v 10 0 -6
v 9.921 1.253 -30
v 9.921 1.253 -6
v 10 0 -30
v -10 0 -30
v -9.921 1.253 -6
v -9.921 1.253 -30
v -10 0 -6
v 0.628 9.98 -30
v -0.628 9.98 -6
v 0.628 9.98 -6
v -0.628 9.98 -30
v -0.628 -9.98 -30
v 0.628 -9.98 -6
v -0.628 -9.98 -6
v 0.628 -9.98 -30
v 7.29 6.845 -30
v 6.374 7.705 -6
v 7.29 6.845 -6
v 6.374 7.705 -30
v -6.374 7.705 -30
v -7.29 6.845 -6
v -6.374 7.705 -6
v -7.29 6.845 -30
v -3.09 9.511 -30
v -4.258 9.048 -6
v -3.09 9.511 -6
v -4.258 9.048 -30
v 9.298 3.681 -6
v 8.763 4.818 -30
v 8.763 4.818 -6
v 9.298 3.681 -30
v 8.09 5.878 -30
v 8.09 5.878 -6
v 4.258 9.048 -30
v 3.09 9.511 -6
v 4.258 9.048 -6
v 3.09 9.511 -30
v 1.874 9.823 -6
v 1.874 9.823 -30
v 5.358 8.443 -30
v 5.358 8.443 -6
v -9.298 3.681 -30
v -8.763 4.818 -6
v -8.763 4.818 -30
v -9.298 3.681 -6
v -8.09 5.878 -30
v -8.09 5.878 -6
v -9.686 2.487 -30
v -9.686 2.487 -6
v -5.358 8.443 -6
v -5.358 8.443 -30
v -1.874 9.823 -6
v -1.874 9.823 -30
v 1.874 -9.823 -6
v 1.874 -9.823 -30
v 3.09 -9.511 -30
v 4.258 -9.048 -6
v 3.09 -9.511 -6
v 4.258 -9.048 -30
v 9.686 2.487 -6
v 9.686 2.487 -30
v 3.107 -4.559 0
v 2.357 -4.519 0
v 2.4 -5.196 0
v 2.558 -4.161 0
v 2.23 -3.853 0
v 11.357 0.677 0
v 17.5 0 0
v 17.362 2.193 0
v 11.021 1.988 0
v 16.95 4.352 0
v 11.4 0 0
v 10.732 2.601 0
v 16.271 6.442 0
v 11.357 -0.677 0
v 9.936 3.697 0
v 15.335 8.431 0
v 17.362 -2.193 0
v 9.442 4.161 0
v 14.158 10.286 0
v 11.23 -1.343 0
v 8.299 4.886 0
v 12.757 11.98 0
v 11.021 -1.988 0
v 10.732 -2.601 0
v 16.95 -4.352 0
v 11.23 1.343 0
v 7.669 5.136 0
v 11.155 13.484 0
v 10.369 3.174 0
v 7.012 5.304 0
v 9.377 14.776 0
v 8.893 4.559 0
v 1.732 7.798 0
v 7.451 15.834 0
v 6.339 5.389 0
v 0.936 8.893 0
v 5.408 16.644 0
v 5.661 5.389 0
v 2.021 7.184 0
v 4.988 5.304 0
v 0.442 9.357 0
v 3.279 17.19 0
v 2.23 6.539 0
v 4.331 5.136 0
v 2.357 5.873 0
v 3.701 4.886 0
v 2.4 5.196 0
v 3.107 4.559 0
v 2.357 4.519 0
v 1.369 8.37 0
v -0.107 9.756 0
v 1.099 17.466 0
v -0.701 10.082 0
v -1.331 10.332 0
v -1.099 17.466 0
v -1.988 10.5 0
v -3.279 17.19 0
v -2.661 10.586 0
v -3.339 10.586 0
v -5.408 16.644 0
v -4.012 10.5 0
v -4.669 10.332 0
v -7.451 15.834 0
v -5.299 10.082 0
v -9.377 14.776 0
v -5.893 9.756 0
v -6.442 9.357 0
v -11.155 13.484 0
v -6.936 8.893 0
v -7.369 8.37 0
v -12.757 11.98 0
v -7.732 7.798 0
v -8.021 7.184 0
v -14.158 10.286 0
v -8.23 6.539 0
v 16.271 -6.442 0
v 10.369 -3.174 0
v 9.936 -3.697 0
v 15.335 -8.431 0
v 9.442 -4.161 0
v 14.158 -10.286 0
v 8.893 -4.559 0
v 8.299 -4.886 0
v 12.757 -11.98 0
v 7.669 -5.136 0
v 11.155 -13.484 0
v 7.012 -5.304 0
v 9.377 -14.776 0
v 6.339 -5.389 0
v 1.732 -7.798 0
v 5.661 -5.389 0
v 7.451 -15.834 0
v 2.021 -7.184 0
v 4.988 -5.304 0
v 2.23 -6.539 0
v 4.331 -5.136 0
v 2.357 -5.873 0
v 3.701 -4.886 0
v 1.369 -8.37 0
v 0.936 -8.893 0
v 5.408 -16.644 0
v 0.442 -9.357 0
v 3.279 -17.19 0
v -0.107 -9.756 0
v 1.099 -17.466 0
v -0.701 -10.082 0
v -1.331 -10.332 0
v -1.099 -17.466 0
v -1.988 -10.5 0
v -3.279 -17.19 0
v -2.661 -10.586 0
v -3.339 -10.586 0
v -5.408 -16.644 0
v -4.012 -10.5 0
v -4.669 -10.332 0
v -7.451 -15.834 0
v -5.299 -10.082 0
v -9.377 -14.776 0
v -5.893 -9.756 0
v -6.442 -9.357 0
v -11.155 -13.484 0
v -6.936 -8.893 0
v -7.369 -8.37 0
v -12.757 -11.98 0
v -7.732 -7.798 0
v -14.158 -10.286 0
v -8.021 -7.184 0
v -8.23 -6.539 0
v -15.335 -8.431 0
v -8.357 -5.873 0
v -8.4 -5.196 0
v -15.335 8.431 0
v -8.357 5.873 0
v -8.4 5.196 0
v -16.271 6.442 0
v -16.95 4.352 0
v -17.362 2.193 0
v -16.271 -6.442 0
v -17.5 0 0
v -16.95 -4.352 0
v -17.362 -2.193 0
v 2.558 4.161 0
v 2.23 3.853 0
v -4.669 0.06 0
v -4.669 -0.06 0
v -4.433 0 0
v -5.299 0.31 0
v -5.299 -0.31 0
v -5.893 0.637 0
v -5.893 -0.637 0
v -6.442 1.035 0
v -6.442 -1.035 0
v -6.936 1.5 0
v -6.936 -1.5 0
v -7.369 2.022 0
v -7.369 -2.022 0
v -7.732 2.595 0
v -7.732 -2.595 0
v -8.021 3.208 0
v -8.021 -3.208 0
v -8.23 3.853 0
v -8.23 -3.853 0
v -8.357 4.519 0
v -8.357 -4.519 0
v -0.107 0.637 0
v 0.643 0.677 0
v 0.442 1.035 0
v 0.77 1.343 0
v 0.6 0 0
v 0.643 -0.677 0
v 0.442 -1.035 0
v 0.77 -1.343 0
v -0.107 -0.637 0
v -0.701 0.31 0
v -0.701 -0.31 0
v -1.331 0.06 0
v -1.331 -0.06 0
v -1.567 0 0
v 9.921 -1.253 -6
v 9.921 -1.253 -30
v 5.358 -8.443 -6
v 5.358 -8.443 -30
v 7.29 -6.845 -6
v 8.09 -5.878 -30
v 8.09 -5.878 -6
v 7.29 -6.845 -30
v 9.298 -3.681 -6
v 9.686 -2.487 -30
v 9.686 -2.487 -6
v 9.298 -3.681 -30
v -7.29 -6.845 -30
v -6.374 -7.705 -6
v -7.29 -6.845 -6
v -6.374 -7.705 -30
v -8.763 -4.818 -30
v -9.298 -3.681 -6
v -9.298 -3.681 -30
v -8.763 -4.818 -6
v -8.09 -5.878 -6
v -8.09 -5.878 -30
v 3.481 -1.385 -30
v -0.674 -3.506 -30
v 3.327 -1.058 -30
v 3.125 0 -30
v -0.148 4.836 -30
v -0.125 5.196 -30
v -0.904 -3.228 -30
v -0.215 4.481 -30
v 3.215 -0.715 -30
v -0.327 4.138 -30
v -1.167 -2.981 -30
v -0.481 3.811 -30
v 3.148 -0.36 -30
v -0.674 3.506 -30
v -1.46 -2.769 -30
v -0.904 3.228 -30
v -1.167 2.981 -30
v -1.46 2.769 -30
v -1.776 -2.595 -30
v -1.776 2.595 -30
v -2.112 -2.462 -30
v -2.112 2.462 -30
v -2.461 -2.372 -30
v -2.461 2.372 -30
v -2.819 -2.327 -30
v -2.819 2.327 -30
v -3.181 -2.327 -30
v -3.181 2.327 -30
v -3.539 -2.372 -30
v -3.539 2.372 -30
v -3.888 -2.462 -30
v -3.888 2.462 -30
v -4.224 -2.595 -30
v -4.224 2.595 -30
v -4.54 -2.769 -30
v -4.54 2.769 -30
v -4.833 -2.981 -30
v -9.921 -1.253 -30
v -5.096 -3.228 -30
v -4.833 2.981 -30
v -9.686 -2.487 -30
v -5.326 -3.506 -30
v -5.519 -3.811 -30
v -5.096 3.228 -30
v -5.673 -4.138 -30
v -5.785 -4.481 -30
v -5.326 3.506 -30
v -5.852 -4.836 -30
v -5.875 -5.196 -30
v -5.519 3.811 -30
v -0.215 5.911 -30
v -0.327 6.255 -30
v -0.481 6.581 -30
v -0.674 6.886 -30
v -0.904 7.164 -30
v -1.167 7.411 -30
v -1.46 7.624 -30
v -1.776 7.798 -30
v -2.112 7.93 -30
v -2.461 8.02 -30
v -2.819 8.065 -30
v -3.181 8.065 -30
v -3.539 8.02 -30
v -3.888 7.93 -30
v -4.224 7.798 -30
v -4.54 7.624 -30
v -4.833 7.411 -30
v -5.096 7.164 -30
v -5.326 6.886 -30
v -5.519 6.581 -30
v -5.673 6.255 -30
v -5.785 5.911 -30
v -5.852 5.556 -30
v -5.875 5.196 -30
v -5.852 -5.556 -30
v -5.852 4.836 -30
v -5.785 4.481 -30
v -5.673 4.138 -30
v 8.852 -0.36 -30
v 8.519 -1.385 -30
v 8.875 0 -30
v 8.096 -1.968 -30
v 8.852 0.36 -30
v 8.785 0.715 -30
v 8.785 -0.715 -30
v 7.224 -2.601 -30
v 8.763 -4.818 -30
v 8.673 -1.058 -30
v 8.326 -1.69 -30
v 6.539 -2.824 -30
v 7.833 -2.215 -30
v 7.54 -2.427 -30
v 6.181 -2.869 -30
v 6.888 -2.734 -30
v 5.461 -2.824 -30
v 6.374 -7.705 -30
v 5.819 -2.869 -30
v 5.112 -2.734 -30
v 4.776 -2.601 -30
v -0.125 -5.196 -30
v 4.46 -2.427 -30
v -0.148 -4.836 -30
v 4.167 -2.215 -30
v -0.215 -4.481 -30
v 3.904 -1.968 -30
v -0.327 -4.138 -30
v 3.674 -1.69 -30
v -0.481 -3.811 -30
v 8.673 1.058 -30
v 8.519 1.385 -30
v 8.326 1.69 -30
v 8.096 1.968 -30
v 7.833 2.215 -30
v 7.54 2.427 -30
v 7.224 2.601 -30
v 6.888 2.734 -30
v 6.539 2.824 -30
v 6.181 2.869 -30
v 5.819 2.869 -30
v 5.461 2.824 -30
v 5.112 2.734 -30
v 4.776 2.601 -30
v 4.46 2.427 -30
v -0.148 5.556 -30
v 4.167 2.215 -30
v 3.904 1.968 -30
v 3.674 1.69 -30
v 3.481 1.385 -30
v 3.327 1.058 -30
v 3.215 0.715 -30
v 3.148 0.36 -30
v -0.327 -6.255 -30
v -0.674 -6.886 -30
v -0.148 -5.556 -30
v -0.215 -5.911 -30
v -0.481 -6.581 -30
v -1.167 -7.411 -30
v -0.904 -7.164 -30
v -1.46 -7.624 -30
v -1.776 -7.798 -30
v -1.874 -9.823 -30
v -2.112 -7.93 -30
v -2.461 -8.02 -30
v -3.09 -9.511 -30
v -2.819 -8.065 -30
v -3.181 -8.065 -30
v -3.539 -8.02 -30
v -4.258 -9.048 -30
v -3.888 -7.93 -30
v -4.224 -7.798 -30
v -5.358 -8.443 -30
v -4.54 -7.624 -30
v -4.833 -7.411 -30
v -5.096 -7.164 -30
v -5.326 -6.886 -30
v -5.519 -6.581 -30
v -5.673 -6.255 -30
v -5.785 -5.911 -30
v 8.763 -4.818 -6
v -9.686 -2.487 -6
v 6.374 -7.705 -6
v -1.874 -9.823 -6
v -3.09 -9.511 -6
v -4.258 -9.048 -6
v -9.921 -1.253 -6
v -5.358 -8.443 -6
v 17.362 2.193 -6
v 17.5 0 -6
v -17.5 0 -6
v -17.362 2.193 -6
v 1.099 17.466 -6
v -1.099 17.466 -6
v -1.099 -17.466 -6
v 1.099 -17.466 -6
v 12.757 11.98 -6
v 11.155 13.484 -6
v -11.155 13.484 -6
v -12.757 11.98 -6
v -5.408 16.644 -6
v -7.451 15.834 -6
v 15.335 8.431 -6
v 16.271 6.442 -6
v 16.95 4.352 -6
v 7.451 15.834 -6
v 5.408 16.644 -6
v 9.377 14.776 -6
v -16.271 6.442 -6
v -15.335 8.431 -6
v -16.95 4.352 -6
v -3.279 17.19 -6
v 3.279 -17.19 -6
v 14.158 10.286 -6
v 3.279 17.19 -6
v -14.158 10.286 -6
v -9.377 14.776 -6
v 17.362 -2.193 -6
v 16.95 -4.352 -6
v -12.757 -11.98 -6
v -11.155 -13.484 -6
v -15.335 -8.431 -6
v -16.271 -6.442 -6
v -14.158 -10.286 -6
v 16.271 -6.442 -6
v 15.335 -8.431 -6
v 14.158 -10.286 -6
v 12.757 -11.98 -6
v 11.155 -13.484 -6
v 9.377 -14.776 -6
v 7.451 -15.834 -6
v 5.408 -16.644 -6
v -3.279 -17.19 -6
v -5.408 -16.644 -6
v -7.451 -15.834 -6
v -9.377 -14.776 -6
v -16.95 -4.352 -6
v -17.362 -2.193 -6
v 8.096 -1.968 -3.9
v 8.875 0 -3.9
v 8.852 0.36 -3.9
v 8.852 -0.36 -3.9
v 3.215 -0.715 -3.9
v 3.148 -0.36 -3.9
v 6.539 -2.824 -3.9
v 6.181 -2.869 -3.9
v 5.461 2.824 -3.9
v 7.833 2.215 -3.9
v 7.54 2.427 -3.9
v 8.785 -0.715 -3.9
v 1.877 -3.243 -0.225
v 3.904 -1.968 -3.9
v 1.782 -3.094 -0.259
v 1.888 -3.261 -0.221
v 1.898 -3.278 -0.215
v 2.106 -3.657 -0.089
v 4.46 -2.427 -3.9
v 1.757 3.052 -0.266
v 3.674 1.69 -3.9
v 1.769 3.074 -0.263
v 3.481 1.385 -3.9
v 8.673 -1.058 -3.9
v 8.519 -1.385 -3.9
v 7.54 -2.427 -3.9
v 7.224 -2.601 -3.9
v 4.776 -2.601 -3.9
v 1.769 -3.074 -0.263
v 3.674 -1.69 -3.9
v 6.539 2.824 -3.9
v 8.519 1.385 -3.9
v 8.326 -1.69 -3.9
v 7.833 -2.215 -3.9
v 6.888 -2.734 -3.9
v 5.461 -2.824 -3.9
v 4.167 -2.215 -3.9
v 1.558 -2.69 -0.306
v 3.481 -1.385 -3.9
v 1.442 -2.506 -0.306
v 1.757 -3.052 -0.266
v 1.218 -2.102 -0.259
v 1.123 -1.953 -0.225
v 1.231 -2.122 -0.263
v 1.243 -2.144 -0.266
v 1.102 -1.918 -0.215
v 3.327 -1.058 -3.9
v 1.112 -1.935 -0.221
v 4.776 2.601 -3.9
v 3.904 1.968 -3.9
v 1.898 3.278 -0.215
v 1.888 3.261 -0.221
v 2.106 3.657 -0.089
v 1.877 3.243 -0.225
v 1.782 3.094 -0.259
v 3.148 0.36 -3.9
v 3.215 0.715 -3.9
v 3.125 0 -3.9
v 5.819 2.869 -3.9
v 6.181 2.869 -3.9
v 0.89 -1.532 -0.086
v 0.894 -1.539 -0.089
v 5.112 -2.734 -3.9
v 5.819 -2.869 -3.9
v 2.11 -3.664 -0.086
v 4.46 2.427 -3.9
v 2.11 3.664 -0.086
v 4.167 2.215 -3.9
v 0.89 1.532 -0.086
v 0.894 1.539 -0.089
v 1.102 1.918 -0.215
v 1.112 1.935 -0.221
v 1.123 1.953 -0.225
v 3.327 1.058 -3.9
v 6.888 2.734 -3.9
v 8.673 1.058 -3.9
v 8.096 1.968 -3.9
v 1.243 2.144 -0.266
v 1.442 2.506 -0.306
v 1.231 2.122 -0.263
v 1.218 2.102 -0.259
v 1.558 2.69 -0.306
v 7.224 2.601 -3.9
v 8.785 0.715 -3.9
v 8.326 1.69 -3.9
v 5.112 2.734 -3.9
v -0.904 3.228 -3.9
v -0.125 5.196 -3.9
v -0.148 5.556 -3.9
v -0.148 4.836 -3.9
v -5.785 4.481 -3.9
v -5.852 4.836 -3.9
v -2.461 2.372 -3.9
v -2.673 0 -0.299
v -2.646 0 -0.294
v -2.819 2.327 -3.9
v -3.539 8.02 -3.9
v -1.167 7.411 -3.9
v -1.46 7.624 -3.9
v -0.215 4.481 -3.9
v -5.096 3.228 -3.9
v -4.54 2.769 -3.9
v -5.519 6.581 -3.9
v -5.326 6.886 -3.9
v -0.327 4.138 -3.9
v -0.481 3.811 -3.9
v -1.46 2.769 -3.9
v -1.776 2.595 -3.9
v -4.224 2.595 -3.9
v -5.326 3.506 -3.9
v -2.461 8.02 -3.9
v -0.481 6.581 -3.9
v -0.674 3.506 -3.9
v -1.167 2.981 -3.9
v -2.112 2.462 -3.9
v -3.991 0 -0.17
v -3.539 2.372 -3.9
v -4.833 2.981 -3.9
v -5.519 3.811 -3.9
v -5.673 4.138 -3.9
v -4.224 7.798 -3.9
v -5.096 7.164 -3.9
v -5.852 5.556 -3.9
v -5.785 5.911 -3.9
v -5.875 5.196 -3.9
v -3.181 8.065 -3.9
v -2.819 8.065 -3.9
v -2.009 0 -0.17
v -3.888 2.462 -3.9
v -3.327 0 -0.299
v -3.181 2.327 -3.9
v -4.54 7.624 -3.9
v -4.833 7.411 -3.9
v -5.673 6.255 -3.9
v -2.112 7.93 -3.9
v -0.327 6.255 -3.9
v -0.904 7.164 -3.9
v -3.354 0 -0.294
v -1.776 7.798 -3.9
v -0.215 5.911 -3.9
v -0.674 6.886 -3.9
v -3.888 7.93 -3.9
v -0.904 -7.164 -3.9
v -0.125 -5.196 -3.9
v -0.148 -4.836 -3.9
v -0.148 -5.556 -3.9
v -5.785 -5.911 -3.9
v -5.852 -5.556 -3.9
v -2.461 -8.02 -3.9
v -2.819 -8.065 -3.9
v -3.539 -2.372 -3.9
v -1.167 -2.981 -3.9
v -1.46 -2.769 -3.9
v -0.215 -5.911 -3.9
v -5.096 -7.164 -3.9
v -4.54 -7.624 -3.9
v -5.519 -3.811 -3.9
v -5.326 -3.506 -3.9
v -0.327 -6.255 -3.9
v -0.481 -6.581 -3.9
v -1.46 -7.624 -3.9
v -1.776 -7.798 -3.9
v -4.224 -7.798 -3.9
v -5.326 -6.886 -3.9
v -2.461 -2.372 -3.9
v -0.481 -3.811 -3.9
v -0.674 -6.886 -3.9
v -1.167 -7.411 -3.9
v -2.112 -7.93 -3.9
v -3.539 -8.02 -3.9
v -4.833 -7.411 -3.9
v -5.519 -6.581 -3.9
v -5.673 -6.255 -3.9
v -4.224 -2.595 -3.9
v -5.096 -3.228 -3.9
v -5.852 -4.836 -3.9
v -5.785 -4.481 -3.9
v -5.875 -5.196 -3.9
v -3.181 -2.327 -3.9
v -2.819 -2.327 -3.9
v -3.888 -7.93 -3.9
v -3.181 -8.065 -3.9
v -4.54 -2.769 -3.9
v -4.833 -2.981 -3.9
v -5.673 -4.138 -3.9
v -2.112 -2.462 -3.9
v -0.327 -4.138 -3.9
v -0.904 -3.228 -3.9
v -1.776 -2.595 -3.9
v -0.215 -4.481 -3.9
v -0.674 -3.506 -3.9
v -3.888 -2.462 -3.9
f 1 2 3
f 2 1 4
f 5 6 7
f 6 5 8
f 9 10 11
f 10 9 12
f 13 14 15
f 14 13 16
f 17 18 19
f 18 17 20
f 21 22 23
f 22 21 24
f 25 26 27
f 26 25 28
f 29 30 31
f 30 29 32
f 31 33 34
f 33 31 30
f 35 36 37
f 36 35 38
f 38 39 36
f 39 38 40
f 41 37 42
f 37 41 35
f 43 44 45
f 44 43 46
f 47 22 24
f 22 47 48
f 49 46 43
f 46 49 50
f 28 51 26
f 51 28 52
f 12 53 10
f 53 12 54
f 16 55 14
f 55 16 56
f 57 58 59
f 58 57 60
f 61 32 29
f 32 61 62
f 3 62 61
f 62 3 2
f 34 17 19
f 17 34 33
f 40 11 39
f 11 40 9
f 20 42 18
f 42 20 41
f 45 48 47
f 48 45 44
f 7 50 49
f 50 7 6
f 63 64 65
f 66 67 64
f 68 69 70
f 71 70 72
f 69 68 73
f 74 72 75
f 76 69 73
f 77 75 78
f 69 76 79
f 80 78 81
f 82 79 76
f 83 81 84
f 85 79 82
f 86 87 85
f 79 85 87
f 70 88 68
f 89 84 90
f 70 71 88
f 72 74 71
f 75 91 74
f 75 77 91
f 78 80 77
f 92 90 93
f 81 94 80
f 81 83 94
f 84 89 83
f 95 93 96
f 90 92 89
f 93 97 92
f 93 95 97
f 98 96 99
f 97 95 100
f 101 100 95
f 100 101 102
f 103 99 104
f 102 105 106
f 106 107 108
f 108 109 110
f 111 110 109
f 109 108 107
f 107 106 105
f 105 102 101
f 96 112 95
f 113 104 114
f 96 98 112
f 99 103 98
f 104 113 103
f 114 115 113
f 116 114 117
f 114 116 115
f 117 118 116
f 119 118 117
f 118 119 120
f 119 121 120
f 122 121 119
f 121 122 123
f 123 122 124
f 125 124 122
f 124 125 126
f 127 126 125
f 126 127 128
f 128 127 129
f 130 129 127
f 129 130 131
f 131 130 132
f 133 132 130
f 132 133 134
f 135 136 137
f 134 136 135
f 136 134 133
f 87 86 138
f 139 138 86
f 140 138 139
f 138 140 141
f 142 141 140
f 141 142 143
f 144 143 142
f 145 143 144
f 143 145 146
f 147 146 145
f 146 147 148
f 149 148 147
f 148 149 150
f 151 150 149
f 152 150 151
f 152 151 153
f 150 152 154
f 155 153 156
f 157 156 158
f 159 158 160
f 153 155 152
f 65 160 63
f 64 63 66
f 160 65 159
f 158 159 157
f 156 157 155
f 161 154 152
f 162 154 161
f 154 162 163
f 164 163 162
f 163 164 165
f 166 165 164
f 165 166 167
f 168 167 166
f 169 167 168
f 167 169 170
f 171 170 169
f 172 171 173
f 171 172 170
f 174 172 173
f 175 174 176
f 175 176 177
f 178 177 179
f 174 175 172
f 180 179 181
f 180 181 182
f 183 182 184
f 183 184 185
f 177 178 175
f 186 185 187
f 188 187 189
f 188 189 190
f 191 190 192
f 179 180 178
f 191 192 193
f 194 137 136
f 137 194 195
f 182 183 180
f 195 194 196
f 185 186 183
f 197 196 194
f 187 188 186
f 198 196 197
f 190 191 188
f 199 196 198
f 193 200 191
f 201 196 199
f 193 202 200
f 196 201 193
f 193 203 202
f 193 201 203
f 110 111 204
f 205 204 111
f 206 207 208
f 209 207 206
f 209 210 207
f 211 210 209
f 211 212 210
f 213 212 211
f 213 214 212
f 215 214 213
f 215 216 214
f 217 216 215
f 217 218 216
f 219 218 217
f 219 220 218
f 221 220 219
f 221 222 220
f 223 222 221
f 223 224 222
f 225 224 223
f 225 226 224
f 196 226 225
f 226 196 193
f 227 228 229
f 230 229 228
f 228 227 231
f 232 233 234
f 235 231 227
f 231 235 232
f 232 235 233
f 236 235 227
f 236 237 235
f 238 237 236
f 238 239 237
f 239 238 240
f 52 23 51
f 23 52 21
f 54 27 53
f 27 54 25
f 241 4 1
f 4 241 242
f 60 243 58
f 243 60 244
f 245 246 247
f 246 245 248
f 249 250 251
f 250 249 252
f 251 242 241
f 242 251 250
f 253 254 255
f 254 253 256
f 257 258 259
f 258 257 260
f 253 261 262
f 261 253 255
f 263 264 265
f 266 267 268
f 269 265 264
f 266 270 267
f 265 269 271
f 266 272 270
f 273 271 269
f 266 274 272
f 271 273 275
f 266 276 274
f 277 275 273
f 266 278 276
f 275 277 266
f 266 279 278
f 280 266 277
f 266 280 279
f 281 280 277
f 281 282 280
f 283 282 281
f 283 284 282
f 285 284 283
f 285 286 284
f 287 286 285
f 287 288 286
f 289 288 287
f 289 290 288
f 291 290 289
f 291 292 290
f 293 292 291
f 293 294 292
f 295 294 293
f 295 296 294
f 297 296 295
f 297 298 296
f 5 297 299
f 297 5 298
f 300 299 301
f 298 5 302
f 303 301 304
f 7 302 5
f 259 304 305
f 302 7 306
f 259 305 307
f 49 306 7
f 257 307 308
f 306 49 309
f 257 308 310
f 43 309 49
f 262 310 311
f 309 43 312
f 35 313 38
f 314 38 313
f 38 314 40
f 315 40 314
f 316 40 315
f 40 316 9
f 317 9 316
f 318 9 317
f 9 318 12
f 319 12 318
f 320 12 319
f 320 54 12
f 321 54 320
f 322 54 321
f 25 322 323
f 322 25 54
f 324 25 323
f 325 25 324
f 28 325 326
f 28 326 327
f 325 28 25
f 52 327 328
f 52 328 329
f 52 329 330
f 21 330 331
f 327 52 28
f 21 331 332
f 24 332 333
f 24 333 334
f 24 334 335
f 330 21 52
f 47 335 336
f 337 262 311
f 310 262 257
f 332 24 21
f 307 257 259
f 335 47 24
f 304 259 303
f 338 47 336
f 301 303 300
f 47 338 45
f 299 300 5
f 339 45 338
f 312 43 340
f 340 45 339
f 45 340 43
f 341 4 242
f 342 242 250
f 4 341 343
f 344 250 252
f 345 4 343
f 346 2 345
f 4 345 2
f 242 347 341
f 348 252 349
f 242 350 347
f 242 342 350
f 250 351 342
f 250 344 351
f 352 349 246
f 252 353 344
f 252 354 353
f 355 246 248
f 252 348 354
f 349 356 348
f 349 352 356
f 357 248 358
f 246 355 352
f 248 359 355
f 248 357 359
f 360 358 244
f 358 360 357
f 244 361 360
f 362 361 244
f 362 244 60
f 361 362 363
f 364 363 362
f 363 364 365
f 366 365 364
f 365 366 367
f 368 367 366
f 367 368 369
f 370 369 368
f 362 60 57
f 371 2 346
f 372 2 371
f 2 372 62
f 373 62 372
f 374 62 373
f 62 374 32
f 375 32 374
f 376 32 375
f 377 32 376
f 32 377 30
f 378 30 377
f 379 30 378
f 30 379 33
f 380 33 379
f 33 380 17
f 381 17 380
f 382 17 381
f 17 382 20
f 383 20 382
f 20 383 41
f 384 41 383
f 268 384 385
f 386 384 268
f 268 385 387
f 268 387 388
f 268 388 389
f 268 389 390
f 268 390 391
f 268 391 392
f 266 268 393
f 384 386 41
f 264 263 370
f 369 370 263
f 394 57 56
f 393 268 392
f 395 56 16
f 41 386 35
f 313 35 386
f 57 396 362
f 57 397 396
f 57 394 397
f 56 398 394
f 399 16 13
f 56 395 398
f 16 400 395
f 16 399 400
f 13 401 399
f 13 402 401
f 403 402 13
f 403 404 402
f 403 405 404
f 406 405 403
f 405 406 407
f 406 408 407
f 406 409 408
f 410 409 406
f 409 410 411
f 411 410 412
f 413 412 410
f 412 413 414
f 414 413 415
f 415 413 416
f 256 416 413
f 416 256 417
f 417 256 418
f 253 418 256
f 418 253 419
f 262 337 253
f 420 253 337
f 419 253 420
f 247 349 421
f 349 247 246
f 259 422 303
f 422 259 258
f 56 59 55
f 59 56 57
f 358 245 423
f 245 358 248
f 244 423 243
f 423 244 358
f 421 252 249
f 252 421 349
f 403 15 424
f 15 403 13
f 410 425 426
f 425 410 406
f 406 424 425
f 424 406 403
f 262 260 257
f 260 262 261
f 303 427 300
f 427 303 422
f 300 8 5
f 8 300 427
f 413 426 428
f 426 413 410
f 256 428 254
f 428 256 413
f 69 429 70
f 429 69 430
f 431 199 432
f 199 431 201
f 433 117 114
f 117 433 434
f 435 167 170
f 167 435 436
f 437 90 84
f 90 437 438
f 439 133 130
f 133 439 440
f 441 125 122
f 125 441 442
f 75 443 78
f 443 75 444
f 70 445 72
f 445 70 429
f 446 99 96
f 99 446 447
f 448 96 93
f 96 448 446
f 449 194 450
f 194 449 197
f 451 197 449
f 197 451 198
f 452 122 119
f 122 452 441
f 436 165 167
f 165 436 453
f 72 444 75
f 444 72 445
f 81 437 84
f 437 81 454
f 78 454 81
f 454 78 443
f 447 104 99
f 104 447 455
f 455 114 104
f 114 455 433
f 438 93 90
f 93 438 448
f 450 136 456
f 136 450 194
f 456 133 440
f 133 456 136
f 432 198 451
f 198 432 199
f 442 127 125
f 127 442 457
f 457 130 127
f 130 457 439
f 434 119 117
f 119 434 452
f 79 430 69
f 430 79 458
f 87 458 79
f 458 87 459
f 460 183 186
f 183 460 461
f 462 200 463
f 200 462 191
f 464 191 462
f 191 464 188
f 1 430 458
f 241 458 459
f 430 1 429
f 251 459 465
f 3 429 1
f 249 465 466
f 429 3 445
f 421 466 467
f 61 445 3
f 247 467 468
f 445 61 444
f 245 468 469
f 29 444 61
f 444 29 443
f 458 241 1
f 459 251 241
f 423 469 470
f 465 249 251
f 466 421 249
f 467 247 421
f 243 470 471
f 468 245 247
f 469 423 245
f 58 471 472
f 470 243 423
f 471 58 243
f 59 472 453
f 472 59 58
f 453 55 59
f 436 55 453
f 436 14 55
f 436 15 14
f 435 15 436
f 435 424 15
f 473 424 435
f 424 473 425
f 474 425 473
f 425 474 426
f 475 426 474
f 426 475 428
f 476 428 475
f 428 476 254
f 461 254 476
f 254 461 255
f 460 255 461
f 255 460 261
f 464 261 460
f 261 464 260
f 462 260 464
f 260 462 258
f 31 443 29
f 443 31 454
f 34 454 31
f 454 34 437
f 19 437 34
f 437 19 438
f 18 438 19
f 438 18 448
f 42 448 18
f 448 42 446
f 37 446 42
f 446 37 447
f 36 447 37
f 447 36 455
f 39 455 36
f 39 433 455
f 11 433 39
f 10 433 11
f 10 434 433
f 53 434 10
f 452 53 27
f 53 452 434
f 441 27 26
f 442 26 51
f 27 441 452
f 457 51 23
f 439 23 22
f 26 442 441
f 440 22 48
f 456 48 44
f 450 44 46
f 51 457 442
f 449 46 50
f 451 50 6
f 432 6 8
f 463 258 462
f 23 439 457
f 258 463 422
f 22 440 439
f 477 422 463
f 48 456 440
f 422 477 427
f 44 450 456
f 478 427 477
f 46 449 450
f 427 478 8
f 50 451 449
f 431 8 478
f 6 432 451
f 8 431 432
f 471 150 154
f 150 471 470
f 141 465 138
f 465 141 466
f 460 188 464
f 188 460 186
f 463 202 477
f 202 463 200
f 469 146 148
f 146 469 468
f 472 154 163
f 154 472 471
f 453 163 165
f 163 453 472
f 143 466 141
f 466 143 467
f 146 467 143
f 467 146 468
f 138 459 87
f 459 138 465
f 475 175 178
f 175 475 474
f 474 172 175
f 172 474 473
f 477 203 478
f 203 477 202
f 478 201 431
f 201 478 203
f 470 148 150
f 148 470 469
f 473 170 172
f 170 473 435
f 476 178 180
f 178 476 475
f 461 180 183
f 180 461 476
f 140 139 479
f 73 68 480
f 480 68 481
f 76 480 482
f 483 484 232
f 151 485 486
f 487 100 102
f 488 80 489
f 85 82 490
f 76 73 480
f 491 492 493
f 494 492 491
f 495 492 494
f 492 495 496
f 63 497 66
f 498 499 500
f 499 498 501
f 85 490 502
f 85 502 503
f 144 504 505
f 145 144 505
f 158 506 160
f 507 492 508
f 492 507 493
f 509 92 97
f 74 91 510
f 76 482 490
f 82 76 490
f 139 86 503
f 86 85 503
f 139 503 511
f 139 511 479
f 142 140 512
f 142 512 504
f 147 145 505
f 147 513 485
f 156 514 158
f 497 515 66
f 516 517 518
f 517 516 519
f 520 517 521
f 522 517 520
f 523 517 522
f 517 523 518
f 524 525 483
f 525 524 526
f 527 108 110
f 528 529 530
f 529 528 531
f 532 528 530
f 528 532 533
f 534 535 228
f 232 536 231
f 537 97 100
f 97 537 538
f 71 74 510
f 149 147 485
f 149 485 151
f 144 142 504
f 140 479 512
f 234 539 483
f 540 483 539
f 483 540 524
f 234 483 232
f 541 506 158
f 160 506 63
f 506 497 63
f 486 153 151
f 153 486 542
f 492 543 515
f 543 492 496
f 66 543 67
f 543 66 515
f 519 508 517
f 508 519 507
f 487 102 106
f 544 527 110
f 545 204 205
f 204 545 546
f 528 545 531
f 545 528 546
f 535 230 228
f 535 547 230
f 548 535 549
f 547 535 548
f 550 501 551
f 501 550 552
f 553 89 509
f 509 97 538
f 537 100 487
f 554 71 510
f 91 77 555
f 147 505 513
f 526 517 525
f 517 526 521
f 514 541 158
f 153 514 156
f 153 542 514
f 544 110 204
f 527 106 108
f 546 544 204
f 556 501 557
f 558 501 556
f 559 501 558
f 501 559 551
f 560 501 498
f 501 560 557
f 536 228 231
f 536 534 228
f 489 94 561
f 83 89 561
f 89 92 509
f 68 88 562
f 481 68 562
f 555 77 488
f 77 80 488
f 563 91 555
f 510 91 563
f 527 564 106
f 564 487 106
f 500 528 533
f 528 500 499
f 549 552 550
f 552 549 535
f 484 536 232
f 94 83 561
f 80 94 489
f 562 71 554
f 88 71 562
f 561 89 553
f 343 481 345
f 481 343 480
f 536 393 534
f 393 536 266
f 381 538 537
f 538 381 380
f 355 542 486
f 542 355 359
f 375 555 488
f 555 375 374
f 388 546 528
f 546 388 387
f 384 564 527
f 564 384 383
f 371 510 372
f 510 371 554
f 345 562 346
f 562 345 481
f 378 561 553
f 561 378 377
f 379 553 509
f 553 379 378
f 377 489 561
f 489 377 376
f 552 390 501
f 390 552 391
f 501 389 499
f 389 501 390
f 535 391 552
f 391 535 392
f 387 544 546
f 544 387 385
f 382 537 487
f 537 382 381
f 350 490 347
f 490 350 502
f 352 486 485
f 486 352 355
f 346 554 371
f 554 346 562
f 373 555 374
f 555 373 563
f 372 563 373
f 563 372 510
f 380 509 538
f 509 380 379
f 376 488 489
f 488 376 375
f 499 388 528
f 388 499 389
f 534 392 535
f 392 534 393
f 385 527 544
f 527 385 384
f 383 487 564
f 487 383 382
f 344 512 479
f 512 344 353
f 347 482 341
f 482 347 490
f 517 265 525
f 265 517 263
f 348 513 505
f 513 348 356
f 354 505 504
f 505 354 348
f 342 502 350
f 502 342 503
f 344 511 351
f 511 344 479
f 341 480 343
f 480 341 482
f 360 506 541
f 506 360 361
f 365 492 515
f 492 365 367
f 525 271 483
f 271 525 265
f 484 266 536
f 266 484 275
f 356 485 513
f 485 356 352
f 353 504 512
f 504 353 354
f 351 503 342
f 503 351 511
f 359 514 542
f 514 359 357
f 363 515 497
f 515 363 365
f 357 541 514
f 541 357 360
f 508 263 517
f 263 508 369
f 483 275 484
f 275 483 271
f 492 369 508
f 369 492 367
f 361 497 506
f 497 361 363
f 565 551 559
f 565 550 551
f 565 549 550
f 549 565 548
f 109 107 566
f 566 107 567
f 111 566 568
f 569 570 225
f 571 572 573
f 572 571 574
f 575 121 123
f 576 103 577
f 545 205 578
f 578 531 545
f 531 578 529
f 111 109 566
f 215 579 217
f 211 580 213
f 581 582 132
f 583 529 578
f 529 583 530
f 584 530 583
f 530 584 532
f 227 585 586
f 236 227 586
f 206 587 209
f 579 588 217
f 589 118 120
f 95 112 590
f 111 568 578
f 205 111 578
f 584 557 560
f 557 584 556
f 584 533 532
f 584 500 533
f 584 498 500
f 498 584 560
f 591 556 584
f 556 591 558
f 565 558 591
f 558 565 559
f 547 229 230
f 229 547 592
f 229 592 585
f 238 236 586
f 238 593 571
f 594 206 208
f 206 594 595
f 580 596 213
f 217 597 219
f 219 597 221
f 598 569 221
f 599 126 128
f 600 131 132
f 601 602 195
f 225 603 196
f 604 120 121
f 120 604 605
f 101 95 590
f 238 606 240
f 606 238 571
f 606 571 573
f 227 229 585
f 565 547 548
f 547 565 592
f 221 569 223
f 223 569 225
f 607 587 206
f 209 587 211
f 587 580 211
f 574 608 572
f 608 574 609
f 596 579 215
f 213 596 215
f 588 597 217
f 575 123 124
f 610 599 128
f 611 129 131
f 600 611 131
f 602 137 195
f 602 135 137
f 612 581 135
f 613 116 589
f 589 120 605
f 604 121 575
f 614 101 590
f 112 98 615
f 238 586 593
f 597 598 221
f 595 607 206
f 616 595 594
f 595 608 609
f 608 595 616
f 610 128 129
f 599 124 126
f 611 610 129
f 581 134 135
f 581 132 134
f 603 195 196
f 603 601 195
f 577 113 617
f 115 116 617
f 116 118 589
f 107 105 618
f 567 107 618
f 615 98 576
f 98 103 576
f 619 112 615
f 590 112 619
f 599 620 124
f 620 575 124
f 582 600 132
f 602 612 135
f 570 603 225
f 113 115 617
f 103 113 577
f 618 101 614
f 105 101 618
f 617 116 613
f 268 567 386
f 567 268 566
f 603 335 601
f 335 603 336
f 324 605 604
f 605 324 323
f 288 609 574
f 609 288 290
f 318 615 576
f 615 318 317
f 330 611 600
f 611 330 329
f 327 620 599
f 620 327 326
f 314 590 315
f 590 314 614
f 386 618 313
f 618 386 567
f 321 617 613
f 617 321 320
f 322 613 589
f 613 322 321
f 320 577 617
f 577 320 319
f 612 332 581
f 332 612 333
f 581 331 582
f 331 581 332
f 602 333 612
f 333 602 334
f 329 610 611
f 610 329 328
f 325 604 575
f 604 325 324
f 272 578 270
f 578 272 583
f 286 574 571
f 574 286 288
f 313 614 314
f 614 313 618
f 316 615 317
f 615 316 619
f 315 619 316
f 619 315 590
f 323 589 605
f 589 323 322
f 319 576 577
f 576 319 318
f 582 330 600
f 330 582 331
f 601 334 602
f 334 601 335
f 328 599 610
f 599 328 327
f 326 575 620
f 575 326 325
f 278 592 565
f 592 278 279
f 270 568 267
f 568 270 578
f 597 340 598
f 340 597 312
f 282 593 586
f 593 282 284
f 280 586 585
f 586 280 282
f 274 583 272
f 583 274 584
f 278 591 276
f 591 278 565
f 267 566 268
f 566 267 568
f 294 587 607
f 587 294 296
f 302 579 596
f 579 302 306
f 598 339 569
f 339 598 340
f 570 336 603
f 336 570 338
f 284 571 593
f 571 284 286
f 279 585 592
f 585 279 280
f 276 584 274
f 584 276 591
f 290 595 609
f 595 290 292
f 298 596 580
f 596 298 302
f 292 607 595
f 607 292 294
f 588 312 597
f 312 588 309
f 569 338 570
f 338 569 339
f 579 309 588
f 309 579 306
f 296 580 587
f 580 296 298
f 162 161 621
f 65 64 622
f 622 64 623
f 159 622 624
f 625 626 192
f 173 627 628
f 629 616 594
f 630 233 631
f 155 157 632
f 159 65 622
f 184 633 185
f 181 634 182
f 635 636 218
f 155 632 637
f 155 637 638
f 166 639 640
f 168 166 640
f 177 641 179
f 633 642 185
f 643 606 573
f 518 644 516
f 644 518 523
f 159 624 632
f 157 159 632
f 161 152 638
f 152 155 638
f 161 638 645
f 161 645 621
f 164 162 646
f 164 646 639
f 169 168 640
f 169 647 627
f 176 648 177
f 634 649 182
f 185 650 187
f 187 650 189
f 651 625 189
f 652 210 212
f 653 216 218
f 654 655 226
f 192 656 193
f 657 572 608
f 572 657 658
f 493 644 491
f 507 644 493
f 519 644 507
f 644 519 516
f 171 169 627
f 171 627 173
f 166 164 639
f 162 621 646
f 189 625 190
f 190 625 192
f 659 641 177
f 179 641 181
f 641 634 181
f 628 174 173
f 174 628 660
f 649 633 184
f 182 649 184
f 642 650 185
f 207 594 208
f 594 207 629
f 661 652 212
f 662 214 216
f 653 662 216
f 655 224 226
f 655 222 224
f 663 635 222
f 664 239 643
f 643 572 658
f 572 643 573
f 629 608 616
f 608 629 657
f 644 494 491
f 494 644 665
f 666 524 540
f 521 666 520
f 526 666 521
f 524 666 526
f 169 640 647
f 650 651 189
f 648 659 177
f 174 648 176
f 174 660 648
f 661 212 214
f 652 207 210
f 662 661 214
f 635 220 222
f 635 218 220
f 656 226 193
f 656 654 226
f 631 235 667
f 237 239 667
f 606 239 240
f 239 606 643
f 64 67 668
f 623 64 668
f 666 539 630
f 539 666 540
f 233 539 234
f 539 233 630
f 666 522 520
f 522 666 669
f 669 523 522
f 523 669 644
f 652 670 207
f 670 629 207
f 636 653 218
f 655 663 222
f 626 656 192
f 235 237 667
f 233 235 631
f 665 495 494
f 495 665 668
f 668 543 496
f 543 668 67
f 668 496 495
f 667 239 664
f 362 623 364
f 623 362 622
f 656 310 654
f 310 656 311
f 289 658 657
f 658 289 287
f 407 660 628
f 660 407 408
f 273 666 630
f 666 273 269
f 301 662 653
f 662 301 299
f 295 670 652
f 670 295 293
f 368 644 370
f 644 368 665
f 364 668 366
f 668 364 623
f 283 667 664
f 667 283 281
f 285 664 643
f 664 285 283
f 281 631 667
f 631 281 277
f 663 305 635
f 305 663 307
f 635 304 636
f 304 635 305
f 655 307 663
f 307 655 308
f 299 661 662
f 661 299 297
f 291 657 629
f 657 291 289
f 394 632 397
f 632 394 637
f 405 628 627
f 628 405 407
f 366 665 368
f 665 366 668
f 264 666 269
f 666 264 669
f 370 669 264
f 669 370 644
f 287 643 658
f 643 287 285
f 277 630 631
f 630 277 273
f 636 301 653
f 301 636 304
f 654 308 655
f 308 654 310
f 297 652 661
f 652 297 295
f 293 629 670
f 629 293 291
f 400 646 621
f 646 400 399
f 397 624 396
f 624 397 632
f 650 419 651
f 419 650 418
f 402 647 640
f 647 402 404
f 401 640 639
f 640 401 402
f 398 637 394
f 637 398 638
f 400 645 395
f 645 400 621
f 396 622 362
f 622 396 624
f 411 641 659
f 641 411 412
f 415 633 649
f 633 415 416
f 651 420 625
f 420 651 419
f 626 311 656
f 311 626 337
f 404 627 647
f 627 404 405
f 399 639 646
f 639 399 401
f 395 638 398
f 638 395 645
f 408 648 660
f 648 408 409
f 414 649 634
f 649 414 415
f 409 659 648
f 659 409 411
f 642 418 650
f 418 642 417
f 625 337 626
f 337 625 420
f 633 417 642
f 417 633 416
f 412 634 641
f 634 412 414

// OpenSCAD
$fn = 50;


difference() {
	union() {
		translate(v = [0, 0, -30.0000000000]) {
			cylinder(h = 30, r = 10.0000000000);
		}
		translate(v = [0, 0, -6.0000000000]) {
			cylinder(h = 6, r = 17.5000000000);
		}
	}
	union() {
		translate(v = [6.0000000000, 0.0000000000, 0]) {
			rotate(a = [0, 0, 0]) {
				difference() {
					union() {
						#translate(v = [0, 0, -30.0000000000]) {
							cylinder(h = 30, r = 2.6000000000);
						}
						#translate(v = [0, 0, -3.9000000000]) {
							cylinder(h = 3.9000000000, r = 10.0000000000, r1 = 2.8750000000, r2 = 5.4000000000);
						}
						#translate(v = [0, 0, -30.0000000000]) {
							cylinder(h = 30, r = 2.8750000000);
						}
						#translate(v = [0, 0, -30.0000000000]) {
							cylinder(h = 30, r = 2.6000000000);
						}
					}
					union();
				}
			}
		}
		translate(v = [-3.0000000000, 5.1961524227, 0]) {
			rotate(a = [0, 0, 0]) {
				difference() {
					union() {
						#translate(v = [0, 0, -30.0000000000]) {
							cylinder(h = 30, r = 2.6000000000);
						}
						#translate(v = [0, 0, -3.9000000000]) {
							cylinder(h = 3.9000000000, r = 10.0000000000, r1 = 2.8750000000, r2 = 5.4000000000);
						}
						#translate(v = [0, 0, -30.0000000000]) {
							cylinder(h = 30, r = 2.8750000000);
						}
						#translate(v = [0, 0, -30.0000000000]) {
							cylinder(h = 30, r = 2.6000000000);
						}
					}
					union();
				}
			}
		}
		translate(v = [-3.0000000000, -5.1961524227, 0]) {
			rotate(a = [0, 0, 0]) {
				difference() {
					union() {
						#translate(v = [0, 0, -30.0000000000]) {
							cylinder(h = 30, r = 2.6000000000);
						}
						#translate(v = [0, 0, -3.9000000000]) {
							cylinder(h = 3.9000000000, r = 10.0000000000, r1 = 2.8750000000, r2 = 5.4000000000);
						}
						#translate(v = [0, 0, -30.0000000000]) {
							cylinder(h = 30, r = 2.8750000000);
						}
						#translate(v = [0, 0, -30.0000000000]) {
							cylinder(h = 30, r = 2.6000000000);
						}
					}
					union();
				}
			}
		}
	}
}
